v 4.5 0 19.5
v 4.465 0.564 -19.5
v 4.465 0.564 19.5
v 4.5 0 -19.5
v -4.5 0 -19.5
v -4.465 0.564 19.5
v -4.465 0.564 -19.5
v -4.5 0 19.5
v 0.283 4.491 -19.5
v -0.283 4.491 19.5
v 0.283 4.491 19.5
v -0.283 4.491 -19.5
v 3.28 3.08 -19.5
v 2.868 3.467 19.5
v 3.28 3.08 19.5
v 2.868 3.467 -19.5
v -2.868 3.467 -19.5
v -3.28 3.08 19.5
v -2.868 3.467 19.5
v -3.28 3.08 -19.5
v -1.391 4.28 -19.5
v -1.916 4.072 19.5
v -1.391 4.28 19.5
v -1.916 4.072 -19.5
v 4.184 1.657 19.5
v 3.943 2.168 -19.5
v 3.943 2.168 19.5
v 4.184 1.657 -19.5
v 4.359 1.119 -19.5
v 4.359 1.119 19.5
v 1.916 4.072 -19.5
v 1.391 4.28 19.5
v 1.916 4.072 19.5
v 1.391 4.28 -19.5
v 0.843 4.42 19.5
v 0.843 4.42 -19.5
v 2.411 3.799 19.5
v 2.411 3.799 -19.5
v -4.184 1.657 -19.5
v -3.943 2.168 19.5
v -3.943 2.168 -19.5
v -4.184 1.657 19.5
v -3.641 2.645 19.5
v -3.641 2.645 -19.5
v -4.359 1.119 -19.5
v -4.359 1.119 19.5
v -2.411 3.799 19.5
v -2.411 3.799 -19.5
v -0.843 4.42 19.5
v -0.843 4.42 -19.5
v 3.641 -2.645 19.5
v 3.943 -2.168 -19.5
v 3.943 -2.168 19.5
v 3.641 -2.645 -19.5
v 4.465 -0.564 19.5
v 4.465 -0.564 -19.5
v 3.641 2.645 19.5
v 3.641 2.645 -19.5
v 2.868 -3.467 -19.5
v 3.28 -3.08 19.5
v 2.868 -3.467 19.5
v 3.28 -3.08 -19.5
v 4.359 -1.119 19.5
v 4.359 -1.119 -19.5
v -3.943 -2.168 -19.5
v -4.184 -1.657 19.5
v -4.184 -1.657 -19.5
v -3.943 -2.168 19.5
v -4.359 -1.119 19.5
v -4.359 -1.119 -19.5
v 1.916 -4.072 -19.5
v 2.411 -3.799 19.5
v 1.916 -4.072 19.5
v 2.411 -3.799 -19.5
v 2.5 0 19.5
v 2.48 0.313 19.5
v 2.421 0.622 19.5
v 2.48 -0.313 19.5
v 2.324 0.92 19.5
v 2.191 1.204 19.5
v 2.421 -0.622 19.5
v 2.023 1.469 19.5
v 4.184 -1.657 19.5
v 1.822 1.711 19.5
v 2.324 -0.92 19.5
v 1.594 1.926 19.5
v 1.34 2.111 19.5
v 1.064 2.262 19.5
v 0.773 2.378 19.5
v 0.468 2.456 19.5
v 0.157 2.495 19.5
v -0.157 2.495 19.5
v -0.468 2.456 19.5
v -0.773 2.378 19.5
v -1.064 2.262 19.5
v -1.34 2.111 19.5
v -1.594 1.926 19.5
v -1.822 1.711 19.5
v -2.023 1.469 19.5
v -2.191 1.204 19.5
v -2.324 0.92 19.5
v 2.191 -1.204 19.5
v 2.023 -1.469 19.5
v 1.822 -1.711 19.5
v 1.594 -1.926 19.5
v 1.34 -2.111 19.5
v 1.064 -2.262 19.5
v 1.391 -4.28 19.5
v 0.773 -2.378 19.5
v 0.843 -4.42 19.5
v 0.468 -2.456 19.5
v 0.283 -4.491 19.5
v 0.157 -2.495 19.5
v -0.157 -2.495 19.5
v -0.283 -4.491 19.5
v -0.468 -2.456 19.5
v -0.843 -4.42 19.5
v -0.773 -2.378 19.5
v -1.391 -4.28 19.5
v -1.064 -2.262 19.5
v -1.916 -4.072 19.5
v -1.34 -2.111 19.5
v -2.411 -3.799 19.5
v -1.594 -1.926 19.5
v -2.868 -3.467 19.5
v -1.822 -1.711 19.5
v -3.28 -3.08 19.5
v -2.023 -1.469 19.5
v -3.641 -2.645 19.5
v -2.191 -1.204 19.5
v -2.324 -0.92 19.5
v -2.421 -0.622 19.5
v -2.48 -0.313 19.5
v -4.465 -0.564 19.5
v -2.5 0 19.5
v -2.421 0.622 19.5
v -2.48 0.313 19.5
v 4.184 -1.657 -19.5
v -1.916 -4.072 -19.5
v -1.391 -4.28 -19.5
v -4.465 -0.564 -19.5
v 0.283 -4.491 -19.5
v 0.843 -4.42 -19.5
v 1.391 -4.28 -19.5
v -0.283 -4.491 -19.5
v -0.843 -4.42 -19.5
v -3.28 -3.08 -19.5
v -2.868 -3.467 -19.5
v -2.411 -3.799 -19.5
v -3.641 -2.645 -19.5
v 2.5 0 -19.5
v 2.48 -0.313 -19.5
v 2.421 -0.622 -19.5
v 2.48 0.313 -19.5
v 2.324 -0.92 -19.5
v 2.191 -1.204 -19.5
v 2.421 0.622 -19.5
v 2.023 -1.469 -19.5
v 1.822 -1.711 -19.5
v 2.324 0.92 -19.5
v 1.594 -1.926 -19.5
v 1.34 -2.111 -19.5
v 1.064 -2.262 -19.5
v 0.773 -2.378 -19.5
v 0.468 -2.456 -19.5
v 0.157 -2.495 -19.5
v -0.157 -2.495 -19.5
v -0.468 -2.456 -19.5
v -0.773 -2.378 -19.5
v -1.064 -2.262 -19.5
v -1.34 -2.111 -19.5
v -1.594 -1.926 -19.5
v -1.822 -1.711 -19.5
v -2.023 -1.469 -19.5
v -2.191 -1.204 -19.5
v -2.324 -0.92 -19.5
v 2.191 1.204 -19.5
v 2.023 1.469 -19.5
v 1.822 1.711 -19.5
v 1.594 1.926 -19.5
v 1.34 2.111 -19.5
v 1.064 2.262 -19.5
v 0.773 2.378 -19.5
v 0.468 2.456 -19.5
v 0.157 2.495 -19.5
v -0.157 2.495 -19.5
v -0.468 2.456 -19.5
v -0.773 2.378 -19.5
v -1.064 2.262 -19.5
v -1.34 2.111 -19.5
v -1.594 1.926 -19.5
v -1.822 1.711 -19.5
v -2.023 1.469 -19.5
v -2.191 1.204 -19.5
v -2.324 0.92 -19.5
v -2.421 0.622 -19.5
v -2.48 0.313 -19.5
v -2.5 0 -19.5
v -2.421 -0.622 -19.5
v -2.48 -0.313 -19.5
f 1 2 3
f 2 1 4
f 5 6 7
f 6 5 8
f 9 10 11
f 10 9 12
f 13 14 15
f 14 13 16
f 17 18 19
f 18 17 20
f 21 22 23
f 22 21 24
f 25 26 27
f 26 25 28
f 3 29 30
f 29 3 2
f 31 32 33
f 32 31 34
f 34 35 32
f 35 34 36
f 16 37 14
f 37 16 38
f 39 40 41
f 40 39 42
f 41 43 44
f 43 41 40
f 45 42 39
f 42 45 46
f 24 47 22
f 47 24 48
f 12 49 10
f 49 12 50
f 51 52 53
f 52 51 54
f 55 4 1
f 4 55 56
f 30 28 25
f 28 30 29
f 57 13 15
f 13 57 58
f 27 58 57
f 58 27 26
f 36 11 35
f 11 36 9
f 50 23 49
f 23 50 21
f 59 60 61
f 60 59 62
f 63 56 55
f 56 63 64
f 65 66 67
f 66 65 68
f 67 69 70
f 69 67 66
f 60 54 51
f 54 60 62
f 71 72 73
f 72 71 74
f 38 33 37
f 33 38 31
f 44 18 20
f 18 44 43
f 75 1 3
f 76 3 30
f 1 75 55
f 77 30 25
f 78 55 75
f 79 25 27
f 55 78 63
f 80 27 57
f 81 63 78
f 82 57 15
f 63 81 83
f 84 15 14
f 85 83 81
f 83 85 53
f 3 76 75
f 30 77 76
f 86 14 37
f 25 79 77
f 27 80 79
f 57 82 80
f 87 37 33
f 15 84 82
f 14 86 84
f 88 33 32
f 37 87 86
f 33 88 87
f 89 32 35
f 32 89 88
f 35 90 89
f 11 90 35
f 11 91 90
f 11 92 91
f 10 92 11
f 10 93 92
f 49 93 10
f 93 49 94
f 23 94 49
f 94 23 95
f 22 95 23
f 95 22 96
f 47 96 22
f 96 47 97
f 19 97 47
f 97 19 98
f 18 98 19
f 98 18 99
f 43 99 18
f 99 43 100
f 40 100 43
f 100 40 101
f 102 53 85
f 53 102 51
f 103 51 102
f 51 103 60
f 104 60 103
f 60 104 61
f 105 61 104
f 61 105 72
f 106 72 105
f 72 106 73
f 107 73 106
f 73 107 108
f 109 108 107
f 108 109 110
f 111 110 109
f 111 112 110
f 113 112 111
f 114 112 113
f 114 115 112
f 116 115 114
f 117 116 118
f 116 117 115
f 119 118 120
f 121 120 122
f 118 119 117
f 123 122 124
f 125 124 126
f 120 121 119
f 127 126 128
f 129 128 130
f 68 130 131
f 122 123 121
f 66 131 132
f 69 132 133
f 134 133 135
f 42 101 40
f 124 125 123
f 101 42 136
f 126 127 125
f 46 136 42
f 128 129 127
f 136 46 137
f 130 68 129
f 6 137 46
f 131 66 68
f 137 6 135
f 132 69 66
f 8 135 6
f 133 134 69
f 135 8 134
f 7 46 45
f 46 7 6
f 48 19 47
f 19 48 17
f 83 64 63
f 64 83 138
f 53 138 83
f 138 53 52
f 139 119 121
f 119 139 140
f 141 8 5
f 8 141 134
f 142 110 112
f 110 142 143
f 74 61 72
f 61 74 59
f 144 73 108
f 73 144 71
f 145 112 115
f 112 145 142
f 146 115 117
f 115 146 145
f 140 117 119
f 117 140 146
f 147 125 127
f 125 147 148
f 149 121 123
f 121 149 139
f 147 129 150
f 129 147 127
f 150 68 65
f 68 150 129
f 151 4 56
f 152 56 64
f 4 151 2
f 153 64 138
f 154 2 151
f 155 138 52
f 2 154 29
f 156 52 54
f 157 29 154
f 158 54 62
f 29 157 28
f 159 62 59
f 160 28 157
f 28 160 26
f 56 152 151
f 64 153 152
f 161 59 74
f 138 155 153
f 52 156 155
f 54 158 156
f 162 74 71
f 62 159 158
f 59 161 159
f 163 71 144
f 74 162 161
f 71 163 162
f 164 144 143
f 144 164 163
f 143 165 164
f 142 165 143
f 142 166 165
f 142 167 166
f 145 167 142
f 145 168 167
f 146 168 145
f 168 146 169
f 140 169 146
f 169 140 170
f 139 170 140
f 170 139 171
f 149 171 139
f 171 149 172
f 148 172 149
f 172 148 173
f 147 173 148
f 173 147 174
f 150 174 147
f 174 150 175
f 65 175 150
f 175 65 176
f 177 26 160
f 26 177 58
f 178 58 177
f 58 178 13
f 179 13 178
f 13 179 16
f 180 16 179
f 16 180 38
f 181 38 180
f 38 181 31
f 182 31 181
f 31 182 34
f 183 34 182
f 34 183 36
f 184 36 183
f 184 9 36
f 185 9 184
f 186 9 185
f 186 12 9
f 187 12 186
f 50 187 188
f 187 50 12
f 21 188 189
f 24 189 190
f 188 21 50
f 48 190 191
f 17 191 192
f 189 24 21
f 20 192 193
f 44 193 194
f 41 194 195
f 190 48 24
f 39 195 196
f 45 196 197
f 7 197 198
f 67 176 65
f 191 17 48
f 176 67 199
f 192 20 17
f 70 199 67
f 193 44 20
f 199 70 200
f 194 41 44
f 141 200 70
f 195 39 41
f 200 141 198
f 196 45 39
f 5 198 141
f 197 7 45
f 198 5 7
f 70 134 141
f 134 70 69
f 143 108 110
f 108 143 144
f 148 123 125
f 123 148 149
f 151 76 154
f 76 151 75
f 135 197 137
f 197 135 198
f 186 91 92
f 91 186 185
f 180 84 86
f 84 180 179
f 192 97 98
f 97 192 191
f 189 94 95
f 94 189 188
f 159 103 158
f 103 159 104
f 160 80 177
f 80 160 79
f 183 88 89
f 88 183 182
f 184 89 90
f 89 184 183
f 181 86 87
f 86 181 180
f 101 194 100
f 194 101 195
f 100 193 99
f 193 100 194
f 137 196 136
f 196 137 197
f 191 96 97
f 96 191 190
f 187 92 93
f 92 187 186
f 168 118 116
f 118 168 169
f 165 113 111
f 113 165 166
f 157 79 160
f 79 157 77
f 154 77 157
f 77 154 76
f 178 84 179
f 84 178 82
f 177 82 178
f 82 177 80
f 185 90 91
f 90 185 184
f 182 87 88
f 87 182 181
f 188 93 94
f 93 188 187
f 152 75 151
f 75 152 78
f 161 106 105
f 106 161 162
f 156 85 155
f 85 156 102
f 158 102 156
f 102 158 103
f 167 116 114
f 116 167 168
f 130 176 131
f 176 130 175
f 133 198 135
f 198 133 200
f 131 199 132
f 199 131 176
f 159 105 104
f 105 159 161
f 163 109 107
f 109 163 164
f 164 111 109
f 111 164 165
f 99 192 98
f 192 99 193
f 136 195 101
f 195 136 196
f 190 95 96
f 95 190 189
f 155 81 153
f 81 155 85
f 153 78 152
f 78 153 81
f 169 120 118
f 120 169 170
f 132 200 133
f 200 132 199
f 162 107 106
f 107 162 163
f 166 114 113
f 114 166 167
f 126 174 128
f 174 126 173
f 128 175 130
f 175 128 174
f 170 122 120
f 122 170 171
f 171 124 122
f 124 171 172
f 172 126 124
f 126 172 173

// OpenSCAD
$fn = 50;


difference() {
	union() {
		translate(v = [0, 0, -19.5000000000]) {
			cylinder(h = 39, r = 4.5000000000);
		}
	}
	union() {
		translate(v = [0, 0, -100.0000000000]) {
			cylinder(h = 200, r = 2.5000000000);
		}
	}
}
